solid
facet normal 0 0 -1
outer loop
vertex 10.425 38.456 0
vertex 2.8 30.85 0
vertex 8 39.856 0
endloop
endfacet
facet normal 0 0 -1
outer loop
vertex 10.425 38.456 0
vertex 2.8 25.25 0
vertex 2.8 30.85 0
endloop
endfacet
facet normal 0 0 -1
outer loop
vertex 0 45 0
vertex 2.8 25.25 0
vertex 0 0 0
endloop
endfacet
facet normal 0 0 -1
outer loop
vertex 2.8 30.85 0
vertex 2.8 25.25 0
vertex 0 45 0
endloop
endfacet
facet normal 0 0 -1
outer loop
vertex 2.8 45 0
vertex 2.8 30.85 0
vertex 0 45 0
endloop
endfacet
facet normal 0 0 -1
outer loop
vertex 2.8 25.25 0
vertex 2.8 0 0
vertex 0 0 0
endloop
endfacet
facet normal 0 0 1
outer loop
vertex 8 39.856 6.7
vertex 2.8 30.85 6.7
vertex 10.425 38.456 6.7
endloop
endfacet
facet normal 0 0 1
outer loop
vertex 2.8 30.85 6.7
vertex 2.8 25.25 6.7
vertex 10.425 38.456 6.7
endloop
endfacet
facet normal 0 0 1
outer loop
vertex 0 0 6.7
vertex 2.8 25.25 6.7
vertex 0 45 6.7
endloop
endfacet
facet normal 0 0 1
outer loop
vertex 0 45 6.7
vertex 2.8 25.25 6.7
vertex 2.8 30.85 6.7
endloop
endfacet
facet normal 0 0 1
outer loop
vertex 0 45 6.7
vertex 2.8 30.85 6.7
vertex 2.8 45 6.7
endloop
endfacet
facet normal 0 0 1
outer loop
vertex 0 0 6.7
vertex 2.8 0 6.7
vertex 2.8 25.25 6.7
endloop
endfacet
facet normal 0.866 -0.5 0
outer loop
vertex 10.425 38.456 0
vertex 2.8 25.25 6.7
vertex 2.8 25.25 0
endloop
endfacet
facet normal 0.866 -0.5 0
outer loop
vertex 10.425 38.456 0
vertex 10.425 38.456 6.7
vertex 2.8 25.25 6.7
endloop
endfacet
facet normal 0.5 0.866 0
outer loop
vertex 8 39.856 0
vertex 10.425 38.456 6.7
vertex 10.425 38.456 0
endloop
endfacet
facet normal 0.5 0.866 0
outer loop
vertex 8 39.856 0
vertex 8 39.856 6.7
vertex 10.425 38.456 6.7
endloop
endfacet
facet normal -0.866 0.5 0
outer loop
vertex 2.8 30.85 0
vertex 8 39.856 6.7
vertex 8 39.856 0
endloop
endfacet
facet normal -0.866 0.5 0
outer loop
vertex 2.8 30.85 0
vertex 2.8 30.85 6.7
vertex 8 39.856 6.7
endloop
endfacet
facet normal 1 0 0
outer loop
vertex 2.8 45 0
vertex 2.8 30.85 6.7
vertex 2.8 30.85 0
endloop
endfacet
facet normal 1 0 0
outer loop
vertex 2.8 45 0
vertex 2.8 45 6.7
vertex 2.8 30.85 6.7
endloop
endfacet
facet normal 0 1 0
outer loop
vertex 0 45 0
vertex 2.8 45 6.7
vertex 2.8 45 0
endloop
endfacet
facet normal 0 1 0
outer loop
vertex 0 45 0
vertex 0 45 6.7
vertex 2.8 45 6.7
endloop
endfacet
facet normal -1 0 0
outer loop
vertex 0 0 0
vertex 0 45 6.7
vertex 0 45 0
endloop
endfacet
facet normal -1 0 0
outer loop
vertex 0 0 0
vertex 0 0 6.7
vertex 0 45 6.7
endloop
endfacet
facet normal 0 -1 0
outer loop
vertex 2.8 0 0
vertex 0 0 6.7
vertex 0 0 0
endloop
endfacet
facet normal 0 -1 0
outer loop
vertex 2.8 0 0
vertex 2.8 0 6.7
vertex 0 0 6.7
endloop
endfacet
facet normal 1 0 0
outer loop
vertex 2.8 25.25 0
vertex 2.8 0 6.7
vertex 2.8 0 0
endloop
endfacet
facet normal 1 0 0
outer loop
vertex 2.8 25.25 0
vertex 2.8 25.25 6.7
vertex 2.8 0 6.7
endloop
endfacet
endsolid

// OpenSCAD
thickness = 2.8;
length = 45;
height= 6.7;

linear_extrude(height = height)
{
    square(size = [thickness, length]);
    translate([0, 26, 0])
    {
        rotate(a = -30)
        {
            square(size = [thickness, 16]);
        };
    };
    
}
